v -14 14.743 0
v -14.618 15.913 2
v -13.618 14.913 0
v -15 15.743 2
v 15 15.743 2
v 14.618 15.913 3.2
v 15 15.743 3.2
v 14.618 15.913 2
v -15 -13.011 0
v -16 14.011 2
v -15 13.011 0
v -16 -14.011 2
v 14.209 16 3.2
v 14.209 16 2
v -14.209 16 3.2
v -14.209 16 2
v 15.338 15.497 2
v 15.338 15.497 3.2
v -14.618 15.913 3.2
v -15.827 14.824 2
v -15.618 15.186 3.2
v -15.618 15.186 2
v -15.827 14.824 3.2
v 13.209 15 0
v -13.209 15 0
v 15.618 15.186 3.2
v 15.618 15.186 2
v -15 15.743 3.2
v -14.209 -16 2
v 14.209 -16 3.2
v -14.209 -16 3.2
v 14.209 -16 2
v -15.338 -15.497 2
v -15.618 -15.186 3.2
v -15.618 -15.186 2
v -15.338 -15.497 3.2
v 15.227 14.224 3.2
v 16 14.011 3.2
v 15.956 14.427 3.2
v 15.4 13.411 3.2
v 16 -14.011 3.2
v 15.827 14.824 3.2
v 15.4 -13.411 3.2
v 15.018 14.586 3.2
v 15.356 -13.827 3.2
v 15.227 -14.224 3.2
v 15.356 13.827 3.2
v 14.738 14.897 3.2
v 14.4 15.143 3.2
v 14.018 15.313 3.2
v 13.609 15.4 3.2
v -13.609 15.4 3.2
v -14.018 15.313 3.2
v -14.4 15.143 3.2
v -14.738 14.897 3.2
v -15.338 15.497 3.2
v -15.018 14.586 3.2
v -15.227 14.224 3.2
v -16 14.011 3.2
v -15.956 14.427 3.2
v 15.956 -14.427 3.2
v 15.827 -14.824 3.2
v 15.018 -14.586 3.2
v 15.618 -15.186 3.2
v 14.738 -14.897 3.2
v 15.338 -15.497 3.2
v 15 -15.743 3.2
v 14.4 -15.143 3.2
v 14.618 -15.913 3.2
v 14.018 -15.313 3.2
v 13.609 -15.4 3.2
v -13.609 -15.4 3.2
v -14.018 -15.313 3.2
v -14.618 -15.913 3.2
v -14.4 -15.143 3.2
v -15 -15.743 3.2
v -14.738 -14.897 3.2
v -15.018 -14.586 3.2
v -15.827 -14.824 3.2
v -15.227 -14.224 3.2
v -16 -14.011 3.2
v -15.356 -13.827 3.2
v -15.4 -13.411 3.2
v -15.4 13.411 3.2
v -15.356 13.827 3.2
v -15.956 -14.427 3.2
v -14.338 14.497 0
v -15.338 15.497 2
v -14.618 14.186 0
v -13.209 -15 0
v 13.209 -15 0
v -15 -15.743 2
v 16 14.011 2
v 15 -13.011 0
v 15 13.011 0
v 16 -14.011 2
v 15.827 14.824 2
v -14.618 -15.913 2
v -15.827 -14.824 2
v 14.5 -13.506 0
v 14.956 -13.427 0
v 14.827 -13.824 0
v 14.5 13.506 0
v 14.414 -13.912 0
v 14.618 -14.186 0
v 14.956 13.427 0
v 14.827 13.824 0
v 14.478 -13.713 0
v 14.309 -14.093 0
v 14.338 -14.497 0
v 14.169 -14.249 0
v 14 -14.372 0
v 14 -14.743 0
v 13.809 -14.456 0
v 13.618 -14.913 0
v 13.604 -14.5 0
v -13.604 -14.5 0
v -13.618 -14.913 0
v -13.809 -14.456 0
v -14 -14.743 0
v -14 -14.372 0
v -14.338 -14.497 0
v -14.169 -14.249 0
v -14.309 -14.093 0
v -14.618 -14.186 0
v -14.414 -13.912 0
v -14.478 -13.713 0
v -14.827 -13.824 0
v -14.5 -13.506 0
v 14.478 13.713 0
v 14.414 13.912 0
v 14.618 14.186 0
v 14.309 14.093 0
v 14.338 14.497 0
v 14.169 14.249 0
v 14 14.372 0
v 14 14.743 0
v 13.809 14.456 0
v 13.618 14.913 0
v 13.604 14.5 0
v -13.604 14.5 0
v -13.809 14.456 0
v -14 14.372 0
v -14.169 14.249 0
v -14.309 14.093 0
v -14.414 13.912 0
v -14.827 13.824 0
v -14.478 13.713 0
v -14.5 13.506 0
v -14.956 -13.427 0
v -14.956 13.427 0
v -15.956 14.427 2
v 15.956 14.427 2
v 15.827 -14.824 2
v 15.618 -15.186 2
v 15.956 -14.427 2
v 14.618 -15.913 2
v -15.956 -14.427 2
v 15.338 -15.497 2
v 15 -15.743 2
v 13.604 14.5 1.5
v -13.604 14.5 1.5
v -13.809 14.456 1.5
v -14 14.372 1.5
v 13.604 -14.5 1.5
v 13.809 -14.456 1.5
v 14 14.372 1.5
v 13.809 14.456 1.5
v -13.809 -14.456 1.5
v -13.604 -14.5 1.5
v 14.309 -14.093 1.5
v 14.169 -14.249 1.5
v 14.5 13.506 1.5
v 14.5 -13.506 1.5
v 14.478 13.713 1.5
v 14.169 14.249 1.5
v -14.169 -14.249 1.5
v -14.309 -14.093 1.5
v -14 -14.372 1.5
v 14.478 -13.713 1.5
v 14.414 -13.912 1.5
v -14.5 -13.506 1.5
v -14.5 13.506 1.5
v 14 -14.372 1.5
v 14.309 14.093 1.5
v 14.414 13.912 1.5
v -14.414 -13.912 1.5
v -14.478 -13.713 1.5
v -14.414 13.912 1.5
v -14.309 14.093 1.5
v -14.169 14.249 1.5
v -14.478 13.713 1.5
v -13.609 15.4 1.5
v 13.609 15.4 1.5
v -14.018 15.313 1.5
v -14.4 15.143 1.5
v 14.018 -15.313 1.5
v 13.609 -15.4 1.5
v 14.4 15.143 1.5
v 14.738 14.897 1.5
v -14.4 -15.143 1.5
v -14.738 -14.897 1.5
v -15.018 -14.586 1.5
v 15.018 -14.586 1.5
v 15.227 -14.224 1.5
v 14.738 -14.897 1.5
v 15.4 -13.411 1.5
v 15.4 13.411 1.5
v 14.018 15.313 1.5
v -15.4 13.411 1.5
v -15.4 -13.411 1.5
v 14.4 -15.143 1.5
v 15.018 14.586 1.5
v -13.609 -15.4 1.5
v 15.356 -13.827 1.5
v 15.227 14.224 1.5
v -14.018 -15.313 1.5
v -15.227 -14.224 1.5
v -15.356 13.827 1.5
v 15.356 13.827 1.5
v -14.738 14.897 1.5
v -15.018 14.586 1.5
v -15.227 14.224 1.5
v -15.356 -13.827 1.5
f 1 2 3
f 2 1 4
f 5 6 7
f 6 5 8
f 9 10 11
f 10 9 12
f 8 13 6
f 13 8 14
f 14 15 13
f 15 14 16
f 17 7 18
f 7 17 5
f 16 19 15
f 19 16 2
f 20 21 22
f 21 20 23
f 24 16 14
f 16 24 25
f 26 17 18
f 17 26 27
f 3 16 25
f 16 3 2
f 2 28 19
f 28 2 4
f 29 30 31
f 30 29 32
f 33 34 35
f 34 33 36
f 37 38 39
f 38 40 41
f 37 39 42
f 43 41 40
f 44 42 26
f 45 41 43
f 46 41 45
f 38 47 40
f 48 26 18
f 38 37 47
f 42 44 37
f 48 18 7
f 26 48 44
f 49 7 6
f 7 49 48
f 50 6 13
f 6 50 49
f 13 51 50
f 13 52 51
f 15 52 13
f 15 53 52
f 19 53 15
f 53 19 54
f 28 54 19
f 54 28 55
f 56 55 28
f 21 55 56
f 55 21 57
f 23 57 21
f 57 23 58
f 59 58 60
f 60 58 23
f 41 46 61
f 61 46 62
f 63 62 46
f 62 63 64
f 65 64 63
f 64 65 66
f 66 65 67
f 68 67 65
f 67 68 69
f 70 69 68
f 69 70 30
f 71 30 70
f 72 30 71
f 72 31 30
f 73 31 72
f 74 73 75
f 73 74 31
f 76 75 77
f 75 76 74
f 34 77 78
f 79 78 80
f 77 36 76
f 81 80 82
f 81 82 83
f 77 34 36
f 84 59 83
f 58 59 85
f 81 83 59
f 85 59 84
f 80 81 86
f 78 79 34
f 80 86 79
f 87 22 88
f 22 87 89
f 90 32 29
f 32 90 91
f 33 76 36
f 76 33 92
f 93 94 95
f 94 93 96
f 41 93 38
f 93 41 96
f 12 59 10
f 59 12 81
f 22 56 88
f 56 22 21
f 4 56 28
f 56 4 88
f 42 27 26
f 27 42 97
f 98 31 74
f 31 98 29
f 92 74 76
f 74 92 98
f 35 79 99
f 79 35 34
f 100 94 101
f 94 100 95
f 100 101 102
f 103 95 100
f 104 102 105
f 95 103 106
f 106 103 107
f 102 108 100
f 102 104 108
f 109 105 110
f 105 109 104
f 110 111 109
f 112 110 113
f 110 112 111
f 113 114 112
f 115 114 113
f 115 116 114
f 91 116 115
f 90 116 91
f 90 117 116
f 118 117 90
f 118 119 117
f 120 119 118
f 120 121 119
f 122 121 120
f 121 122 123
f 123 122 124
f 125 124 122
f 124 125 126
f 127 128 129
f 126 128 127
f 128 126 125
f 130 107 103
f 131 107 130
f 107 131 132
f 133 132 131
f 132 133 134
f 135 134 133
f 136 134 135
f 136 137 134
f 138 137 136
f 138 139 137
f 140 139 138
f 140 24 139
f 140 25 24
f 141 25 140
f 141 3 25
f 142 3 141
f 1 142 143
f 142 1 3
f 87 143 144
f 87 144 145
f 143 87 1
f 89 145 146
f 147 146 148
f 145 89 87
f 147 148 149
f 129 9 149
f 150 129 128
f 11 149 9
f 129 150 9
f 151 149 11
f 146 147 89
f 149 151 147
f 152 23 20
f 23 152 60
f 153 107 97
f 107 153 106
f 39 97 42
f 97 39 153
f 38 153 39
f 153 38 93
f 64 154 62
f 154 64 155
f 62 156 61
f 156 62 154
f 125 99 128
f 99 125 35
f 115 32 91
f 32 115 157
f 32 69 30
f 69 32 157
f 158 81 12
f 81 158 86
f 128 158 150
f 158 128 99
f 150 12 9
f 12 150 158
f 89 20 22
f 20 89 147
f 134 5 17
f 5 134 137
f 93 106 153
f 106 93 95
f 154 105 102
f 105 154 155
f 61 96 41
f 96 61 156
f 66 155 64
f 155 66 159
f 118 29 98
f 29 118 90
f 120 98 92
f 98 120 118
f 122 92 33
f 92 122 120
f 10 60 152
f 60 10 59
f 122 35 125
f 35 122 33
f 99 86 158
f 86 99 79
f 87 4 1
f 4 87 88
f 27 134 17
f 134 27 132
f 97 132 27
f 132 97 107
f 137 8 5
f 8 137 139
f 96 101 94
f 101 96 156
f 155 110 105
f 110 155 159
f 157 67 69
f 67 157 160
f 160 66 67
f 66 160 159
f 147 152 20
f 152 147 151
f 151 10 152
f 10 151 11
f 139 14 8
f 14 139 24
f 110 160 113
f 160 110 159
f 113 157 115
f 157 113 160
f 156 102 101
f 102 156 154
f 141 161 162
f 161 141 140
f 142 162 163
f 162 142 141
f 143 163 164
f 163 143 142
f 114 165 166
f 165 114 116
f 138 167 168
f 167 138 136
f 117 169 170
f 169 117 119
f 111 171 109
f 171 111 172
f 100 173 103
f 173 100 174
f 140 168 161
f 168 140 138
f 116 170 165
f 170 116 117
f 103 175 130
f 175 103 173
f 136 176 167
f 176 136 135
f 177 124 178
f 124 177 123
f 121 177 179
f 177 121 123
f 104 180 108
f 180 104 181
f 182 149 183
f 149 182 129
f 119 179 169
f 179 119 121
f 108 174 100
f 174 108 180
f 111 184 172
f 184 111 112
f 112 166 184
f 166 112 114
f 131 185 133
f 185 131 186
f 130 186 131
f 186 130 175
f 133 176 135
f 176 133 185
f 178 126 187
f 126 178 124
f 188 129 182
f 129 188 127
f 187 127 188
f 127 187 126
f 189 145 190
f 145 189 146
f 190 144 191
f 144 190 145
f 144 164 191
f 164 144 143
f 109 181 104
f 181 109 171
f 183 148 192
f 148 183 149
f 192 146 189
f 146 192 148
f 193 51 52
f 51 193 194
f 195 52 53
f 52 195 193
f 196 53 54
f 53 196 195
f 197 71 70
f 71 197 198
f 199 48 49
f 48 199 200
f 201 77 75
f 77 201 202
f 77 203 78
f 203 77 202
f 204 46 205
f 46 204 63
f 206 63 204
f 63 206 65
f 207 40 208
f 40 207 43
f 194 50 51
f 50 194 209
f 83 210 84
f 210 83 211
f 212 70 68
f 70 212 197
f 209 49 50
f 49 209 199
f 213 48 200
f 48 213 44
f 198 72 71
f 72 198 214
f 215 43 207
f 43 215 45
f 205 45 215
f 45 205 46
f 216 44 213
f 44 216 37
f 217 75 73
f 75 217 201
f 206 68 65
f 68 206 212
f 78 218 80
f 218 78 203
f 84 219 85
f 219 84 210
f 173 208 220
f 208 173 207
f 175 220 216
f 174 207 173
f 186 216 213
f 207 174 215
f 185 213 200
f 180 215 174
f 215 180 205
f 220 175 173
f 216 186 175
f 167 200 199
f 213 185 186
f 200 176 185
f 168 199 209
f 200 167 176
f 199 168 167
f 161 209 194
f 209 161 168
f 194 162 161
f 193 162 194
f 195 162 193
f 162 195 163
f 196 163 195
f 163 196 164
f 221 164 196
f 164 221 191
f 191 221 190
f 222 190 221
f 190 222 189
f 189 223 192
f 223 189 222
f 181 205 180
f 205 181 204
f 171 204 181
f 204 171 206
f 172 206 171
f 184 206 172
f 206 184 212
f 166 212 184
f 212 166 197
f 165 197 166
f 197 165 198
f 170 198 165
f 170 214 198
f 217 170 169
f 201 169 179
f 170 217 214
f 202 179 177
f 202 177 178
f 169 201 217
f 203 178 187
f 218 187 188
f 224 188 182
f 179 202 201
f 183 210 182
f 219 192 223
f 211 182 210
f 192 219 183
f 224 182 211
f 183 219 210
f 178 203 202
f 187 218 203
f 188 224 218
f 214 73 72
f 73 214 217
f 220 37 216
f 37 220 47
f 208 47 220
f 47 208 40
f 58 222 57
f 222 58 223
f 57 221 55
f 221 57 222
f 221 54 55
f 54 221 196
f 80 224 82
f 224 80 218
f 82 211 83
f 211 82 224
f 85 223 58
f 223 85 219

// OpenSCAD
// file: scad-utils/morphology.scad
// Copyright (c) 2013 Oskar Linde. All rights reserved.
// License: BSD
//
// This library contains basic 2D morphology operations
//
// outset(d=1)            - creates a polygon at an offset d outside a 2D shape
// inset(d=1)             - creates a polygon at an offset d inside a 2D shape
// fillet(r=1)            - adds fillets of radius r to all concave corners of a 2D shape
// rounding(r=1)          - adds rounding to all convex corners of a 2D shape
// shell(d,center=false)  - makes a shell of width d along the edge of a 2D shape
//                        - positive values of d places the shell on the outside
//                        - negative values of d places the shell on the inside
//                        - center=true and positive d places the shell centered on the edge

module outset(d=1) {
	// Bug workaround for older OpenSCAD versions
	if (version_num() < 20130424) render() outset_extruded(d) children();
	else minkowski() {
		circle(r=d);
		children();
	}
}

module outset_extruded(d=1) {
   projection(cut=true) minkowski() {
        cylinder(r=d);
        linear_extrude(center=true) children();
   }
}

module inset(d=1) {
	 render() inverse() outset(d=d) inverse() children();
}

module fillet(r=1) {
	inset(d=r) render() outset(d=r) children();
}

module rounding(r=1) {
	outset(d=r) inset(d=r) children();
}

module shell(d,center=false) {
	if (center && d > 0) {
		difference() {
			outset(d=d/2) children();
			inset(d=d/2) children();
		}
	}
	if (!center && d > 0) {
		difference() {
			outset(d=d) children();
			children();
		}
	}
	if (!center && d < 0) {
		difference() {
			children();
			inset(d=-d) children();
		}
	}
	if (d == 0) children();
}


// Below are for internal use only

module inverse() {
	difference() {
		square(1e5,center=true);
		children();
	}
}


// TEST CODE

use <mirror.scad>

module arrow(l=1,w=.6,t=0.15) {
	mirror_y() polygon([[0,0],[l,0],[l-w/2,w/2],[l-w/2-sqrt(2)*t,w/2],[l-t/2-sqrt(2)*t,t/2],[0,t/2]]);
}

module shape() {
	polygon([[0,0],[1,0],[1.5,1],[2.5,1],[2,-1],[0,-1]]);
}

if(0) assign($fn=32) {

	for (p = [0:10*3-1]) assign(o=floor(p/3)) {
		translate([(p%3)*2.5,-o*3]) {
			//%if (p % 3 == 1) translate([0,0,1]) shape();
			if (p % 3 == 0) shape();
			if (p % 3 == 1) translate([0.6,0]) arrow();
			if (p % 3 == 2) {
				if (o == 0) inset(d=0.3) shape();
				if (o == 1) outset(d=0.3) shape();
				if (o == 2) rounding(r=0.3) shape();
				if (o == 3) fillet(r=0.3) shape();
				if (o == 4) shell(d=0.3) shape();
				if (o == 5) shell(d=-0.3) shape();
				if (o == 6) shell(d=0.3,center=true) shape();
				if (o == 7) rounding(r=0.3) fillet(r=0.3) shape();
				if (o == 8) shell(d=0.3,center=true) fillet(r=0.3) rounding(r=0.3) shape();
				if (o == 9) shell(d=-0.3) fillet(r=0.3) rounding(r=0.3) shape();
			}
		}
	}
}
// file: scad-utils/mirror.scad
// Copyright (c) 2013 Oskar Linde. All rights reserved.
// License: BSD
//
// This library contains simple mirroring functions
//
// mirror_x()
// mirror_y()
// mirror_z()


module mirror_x() {
  union() {
    child();
    scale([-1,1,1]) child();
  }
}

module mirror_y() {
  union() {
    child();
    scale([1,-1,1]) child();
  }
}

module mirror_z() {
  union() {
    child();
    scale([1,1,-1]) child();
  }
}
// main file
include <scad-utils/mirror.scad>
include <scad-utils/morphology.scad>

$fn=30;

BODY_X=32;
BODY_Y=32;
BODY_Z=3.2;

module shell() {
  difference(){
    hull() {
      translate([0, 0, BODY_Z]) 
      linear_extrude(height=0.001, center=!false, convexity=10, twist=0)
      rounding(r=2)
      square(size=[BODY_X, BODY_Y], center=true);

      translate([0, 0, 2]) 
      linear_extrude(height=0.001, center=!false, convexity=10, twist=0)
      rounding(r=2)
      square(size=[BODY_X, BODY_Y], center=true);

      linear_extrude(height=0.001, center=!false, convexity=10, twist=0)
      rounding(r=2)
      square(size=[BODY_X-2, BODY_Y-2], center=true);    
    }

    translate([0, 0, -0.01]) 
    linear_extrude(height=BODY_Z, center=false, convexity=10, twist=0)
    rounding(r=1)
    square(size=[BODY_X-3, BODY_Y-3], center=true);

    translate([0, 0, 1.5]) 
    linear_extrude(height=BODY_Z, center=false, convexity=10, twist=0)
    rounding(r=2)
    square(size=[BODY_X-1.2, BODY_Y-1.2], center=true);
  }
}

shell();
